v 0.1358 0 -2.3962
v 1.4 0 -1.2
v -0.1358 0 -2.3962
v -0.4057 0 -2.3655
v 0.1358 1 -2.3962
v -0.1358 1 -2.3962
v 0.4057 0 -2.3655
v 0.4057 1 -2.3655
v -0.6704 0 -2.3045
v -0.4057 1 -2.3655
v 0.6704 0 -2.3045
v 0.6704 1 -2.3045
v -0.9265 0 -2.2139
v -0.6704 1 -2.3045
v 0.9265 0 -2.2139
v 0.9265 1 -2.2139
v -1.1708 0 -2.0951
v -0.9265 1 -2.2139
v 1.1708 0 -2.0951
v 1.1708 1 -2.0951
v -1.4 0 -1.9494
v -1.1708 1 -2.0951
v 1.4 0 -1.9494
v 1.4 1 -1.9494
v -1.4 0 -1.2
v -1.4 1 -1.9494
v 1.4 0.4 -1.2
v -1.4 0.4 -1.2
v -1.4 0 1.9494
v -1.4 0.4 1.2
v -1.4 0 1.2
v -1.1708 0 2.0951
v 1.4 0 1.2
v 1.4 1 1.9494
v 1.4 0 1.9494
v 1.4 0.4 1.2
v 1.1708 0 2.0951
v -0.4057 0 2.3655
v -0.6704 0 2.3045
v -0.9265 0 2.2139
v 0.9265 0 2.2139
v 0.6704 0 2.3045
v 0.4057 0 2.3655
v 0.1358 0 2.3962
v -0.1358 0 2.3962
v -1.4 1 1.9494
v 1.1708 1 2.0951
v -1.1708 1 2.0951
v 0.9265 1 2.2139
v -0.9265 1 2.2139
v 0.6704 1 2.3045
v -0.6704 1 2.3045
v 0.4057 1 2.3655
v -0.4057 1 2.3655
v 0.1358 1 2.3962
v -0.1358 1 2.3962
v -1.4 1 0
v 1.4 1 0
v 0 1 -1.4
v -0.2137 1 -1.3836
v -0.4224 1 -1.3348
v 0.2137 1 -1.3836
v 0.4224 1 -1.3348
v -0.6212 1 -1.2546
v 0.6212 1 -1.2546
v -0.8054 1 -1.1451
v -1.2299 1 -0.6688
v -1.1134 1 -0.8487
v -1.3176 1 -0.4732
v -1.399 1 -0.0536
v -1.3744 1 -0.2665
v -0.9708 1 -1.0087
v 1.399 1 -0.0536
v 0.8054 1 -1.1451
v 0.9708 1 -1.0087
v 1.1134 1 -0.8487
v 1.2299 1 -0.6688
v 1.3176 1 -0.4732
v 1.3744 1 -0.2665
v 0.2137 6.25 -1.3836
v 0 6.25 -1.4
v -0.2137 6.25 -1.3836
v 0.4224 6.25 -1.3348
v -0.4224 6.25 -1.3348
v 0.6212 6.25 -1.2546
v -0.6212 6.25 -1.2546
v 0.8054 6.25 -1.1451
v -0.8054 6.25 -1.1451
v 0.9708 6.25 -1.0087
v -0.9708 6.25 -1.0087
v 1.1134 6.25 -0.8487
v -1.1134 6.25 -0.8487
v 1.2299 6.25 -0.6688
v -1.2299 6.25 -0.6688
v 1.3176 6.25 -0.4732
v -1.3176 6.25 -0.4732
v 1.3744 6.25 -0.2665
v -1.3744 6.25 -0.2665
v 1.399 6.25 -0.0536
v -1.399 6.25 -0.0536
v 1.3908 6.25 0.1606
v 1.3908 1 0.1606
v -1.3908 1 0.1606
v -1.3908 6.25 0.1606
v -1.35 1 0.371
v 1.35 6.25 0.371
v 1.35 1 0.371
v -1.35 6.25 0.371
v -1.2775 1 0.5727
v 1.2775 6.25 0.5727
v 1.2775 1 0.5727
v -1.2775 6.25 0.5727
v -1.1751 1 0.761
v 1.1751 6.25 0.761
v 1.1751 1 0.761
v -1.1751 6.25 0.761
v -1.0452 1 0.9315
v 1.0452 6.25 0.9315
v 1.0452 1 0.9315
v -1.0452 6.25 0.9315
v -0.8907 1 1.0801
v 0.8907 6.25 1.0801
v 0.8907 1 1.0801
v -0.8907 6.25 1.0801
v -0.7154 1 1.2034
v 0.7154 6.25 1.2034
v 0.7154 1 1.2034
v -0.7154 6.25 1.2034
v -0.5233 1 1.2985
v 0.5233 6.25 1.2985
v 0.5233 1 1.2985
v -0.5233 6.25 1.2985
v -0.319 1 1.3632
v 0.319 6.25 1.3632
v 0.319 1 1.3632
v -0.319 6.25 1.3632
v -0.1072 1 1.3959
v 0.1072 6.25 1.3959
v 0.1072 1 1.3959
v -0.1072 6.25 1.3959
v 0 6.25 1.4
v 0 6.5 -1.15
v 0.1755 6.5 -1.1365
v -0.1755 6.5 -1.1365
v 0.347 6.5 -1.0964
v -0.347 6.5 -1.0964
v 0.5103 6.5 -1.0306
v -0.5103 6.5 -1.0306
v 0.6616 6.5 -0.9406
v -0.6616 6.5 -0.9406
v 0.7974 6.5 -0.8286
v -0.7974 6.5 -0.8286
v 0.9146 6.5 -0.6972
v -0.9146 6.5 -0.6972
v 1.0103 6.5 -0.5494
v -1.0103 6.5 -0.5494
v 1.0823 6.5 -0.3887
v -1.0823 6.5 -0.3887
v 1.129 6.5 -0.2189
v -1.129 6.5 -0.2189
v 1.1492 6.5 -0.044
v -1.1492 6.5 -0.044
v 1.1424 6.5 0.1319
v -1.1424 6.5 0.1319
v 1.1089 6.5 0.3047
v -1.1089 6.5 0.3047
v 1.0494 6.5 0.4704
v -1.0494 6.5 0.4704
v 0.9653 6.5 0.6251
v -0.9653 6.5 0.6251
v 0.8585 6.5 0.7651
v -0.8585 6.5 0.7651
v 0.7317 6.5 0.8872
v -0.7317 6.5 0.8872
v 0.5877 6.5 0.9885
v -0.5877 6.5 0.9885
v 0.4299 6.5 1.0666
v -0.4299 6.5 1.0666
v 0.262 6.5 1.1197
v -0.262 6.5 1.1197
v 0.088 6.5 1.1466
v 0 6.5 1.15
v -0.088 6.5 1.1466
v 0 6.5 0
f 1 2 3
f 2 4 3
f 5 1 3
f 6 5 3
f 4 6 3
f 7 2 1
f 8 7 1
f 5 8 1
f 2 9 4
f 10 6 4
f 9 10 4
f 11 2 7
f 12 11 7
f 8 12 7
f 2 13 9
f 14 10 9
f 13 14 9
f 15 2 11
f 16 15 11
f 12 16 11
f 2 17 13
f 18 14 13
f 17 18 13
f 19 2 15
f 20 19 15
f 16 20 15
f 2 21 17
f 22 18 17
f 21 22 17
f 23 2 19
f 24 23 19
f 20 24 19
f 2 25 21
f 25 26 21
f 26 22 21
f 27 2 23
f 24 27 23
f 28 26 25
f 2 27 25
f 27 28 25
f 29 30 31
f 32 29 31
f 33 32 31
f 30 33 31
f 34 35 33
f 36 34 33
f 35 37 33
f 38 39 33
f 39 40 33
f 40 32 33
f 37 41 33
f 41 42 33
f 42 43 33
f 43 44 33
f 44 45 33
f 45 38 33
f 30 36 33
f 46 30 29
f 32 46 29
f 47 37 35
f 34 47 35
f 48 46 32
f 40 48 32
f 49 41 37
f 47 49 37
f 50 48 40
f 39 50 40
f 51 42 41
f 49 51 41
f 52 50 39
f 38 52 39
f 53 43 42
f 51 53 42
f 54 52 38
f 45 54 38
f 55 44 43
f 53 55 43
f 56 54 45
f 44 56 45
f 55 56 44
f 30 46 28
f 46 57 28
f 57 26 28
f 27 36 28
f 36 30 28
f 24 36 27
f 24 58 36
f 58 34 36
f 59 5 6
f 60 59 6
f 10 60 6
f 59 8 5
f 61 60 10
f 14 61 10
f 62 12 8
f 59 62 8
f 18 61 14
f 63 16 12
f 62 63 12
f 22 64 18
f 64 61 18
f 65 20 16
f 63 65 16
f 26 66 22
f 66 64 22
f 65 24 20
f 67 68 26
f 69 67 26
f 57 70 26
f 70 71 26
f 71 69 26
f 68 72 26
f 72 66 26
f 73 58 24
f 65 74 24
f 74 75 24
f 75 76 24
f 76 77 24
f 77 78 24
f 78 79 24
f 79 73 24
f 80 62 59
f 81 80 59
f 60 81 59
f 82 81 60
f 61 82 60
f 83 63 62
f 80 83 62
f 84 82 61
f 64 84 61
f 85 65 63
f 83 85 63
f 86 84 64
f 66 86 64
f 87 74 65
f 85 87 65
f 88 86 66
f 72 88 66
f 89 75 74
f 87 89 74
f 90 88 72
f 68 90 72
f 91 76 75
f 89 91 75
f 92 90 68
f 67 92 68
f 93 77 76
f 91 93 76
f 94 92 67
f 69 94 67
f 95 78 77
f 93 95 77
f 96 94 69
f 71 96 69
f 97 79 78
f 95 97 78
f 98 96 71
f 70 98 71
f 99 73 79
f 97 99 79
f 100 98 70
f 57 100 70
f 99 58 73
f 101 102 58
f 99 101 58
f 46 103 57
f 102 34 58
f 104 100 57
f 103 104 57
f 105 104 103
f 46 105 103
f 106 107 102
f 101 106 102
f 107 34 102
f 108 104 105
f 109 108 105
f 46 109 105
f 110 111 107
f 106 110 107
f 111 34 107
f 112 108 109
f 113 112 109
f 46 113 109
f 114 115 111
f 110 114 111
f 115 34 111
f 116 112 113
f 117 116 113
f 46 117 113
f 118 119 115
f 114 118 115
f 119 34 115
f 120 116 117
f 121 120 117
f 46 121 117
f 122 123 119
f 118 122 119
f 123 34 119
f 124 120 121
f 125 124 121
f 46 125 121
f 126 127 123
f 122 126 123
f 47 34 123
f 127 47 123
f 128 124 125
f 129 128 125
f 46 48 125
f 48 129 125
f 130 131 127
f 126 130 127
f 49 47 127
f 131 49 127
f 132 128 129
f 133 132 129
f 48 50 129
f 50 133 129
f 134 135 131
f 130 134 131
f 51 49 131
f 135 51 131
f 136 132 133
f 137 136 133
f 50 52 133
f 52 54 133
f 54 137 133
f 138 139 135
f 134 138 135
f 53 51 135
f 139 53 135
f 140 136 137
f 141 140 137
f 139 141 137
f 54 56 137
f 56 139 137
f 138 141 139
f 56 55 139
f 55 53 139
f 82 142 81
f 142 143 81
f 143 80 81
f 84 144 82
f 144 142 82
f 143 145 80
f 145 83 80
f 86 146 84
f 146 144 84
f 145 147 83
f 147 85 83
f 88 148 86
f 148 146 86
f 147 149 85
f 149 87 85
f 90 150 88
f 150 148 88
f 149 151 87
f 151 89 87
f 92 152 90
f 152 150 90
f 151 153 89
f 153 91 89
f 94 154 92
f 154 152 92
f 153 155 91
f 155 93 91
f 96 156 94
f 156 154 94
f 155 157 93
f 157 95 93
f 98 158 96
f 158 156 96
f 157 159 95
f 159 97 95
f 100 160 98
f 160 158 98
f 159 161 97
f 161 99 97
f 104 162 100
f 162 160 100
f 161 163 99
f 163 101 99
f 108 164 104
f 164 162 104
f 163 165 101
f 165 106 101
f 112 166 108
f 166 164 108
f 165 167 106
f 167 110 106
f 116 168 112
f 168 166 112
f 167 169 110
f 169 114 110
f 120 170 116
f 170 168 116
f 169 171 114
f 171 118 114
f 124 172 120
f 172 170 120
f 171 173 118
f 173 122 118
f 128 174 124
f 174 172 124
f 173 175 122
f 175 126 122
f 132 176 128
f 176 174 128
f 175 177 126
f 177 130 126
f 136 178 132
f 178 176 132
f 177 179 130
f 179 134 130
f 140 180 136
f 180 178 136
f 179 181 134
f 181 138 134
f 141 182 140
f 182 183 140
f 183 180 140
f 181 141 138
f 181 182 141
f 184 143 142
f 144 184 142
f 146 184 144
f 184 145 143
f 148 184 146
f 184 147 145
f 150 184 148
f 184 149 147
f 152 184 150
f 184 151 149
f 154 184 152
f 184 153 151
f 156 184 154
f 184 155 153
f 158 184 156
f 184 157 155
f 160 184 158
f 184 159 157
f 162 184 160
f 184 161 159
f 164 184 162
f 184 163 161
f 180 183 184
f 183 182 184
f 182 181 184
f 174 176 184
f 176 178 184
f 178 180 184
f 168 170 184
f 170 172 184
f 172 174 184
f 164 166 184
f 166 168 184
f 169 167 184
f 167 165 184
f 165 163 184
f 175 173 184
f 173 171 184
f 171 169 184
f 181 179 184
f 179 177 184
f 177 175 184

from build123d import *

# Parameters (mm, degrees)
SKETCH1_R           = 1.4
BOSS_EXTRUDE3_DEPTH = 6.5
BOSS_EXTRUDE4_DEPTH = 1
CHAMFER1_SIZE       = 0.25
SKETCH4_W           = 2.4
SKETCH4_H           = 0.8
CUT_EXTRUDE1_DEPTH  = 3.6


with BuildPart() as part:
    # Sketch1 → Boss-Extrude3 (new body)
    with BuildSketch(Plane(origin=(0, 0, 0), x_dir=(1, 0, 0), z_dir=(0, 1, 0))):
        with Locations(Location((0, 0, 0), (0, 0, 90))):
            Circle(SKETCH1_R)
    extrude(amount=BOSS_EXTRUDE3_DEPTH)

    # Sketch3 → Boss-Extrude4 (add)
    with BuildSketch(Plane(origin=(0, 0, 0), x_dir=(1, 0, 0), z_dir=(0, 1, 0))):
        with BuildLine():
            Line((-1.4, 0), (-1.4, -1.949358869))
            ThreePointArc((-1.4, -1.949358869), (0, -2.4), (1.4, -1.949358869))
            Line((1.4, -1.949358869), (1.4, 0))
            ThreePointArc((1.4, 0), (0, -1.4), (-1.4, 0))
        make_face()
        with BuildLine():
            Line((-1.4, 1.949358869), (-1.4, 0))
            ThreePointArc((-1.4, 0), (0, 1.4), (1.4, 0))
            Line((1.4, 0), (1.4, 1.949358869))
            ThreePointArc((1.4, 1.949358869), (0, 2.4), (-1.4, 1.949358869))
        make_face()
    extrude(amount=BOSS_EXTRUDE4_DEPTH)

    # Chamfer1
    chamfer1_edges = [part.edges().sort_by_distance(p)[0] for p in [
        (0, 6.5, 1.4),
    ]]
    chamfer(chamfer1_edges, length=CHAMFER1_SIZE)

    # Sketch4 → Cut-Extrude1 (cut)
    with BuildSketch(Plane(origin=(1.4, 0, 0), x_dir=(0, 0, -1), z_dir=(1, 0, 0))):
        Rectangle(SKETCH4_W, SKETCH4_H)
    extrude(amount=-CUT_EXTRUDE1_DEPTH, mode=Mode.SUBTRACT)


solid = part.part
